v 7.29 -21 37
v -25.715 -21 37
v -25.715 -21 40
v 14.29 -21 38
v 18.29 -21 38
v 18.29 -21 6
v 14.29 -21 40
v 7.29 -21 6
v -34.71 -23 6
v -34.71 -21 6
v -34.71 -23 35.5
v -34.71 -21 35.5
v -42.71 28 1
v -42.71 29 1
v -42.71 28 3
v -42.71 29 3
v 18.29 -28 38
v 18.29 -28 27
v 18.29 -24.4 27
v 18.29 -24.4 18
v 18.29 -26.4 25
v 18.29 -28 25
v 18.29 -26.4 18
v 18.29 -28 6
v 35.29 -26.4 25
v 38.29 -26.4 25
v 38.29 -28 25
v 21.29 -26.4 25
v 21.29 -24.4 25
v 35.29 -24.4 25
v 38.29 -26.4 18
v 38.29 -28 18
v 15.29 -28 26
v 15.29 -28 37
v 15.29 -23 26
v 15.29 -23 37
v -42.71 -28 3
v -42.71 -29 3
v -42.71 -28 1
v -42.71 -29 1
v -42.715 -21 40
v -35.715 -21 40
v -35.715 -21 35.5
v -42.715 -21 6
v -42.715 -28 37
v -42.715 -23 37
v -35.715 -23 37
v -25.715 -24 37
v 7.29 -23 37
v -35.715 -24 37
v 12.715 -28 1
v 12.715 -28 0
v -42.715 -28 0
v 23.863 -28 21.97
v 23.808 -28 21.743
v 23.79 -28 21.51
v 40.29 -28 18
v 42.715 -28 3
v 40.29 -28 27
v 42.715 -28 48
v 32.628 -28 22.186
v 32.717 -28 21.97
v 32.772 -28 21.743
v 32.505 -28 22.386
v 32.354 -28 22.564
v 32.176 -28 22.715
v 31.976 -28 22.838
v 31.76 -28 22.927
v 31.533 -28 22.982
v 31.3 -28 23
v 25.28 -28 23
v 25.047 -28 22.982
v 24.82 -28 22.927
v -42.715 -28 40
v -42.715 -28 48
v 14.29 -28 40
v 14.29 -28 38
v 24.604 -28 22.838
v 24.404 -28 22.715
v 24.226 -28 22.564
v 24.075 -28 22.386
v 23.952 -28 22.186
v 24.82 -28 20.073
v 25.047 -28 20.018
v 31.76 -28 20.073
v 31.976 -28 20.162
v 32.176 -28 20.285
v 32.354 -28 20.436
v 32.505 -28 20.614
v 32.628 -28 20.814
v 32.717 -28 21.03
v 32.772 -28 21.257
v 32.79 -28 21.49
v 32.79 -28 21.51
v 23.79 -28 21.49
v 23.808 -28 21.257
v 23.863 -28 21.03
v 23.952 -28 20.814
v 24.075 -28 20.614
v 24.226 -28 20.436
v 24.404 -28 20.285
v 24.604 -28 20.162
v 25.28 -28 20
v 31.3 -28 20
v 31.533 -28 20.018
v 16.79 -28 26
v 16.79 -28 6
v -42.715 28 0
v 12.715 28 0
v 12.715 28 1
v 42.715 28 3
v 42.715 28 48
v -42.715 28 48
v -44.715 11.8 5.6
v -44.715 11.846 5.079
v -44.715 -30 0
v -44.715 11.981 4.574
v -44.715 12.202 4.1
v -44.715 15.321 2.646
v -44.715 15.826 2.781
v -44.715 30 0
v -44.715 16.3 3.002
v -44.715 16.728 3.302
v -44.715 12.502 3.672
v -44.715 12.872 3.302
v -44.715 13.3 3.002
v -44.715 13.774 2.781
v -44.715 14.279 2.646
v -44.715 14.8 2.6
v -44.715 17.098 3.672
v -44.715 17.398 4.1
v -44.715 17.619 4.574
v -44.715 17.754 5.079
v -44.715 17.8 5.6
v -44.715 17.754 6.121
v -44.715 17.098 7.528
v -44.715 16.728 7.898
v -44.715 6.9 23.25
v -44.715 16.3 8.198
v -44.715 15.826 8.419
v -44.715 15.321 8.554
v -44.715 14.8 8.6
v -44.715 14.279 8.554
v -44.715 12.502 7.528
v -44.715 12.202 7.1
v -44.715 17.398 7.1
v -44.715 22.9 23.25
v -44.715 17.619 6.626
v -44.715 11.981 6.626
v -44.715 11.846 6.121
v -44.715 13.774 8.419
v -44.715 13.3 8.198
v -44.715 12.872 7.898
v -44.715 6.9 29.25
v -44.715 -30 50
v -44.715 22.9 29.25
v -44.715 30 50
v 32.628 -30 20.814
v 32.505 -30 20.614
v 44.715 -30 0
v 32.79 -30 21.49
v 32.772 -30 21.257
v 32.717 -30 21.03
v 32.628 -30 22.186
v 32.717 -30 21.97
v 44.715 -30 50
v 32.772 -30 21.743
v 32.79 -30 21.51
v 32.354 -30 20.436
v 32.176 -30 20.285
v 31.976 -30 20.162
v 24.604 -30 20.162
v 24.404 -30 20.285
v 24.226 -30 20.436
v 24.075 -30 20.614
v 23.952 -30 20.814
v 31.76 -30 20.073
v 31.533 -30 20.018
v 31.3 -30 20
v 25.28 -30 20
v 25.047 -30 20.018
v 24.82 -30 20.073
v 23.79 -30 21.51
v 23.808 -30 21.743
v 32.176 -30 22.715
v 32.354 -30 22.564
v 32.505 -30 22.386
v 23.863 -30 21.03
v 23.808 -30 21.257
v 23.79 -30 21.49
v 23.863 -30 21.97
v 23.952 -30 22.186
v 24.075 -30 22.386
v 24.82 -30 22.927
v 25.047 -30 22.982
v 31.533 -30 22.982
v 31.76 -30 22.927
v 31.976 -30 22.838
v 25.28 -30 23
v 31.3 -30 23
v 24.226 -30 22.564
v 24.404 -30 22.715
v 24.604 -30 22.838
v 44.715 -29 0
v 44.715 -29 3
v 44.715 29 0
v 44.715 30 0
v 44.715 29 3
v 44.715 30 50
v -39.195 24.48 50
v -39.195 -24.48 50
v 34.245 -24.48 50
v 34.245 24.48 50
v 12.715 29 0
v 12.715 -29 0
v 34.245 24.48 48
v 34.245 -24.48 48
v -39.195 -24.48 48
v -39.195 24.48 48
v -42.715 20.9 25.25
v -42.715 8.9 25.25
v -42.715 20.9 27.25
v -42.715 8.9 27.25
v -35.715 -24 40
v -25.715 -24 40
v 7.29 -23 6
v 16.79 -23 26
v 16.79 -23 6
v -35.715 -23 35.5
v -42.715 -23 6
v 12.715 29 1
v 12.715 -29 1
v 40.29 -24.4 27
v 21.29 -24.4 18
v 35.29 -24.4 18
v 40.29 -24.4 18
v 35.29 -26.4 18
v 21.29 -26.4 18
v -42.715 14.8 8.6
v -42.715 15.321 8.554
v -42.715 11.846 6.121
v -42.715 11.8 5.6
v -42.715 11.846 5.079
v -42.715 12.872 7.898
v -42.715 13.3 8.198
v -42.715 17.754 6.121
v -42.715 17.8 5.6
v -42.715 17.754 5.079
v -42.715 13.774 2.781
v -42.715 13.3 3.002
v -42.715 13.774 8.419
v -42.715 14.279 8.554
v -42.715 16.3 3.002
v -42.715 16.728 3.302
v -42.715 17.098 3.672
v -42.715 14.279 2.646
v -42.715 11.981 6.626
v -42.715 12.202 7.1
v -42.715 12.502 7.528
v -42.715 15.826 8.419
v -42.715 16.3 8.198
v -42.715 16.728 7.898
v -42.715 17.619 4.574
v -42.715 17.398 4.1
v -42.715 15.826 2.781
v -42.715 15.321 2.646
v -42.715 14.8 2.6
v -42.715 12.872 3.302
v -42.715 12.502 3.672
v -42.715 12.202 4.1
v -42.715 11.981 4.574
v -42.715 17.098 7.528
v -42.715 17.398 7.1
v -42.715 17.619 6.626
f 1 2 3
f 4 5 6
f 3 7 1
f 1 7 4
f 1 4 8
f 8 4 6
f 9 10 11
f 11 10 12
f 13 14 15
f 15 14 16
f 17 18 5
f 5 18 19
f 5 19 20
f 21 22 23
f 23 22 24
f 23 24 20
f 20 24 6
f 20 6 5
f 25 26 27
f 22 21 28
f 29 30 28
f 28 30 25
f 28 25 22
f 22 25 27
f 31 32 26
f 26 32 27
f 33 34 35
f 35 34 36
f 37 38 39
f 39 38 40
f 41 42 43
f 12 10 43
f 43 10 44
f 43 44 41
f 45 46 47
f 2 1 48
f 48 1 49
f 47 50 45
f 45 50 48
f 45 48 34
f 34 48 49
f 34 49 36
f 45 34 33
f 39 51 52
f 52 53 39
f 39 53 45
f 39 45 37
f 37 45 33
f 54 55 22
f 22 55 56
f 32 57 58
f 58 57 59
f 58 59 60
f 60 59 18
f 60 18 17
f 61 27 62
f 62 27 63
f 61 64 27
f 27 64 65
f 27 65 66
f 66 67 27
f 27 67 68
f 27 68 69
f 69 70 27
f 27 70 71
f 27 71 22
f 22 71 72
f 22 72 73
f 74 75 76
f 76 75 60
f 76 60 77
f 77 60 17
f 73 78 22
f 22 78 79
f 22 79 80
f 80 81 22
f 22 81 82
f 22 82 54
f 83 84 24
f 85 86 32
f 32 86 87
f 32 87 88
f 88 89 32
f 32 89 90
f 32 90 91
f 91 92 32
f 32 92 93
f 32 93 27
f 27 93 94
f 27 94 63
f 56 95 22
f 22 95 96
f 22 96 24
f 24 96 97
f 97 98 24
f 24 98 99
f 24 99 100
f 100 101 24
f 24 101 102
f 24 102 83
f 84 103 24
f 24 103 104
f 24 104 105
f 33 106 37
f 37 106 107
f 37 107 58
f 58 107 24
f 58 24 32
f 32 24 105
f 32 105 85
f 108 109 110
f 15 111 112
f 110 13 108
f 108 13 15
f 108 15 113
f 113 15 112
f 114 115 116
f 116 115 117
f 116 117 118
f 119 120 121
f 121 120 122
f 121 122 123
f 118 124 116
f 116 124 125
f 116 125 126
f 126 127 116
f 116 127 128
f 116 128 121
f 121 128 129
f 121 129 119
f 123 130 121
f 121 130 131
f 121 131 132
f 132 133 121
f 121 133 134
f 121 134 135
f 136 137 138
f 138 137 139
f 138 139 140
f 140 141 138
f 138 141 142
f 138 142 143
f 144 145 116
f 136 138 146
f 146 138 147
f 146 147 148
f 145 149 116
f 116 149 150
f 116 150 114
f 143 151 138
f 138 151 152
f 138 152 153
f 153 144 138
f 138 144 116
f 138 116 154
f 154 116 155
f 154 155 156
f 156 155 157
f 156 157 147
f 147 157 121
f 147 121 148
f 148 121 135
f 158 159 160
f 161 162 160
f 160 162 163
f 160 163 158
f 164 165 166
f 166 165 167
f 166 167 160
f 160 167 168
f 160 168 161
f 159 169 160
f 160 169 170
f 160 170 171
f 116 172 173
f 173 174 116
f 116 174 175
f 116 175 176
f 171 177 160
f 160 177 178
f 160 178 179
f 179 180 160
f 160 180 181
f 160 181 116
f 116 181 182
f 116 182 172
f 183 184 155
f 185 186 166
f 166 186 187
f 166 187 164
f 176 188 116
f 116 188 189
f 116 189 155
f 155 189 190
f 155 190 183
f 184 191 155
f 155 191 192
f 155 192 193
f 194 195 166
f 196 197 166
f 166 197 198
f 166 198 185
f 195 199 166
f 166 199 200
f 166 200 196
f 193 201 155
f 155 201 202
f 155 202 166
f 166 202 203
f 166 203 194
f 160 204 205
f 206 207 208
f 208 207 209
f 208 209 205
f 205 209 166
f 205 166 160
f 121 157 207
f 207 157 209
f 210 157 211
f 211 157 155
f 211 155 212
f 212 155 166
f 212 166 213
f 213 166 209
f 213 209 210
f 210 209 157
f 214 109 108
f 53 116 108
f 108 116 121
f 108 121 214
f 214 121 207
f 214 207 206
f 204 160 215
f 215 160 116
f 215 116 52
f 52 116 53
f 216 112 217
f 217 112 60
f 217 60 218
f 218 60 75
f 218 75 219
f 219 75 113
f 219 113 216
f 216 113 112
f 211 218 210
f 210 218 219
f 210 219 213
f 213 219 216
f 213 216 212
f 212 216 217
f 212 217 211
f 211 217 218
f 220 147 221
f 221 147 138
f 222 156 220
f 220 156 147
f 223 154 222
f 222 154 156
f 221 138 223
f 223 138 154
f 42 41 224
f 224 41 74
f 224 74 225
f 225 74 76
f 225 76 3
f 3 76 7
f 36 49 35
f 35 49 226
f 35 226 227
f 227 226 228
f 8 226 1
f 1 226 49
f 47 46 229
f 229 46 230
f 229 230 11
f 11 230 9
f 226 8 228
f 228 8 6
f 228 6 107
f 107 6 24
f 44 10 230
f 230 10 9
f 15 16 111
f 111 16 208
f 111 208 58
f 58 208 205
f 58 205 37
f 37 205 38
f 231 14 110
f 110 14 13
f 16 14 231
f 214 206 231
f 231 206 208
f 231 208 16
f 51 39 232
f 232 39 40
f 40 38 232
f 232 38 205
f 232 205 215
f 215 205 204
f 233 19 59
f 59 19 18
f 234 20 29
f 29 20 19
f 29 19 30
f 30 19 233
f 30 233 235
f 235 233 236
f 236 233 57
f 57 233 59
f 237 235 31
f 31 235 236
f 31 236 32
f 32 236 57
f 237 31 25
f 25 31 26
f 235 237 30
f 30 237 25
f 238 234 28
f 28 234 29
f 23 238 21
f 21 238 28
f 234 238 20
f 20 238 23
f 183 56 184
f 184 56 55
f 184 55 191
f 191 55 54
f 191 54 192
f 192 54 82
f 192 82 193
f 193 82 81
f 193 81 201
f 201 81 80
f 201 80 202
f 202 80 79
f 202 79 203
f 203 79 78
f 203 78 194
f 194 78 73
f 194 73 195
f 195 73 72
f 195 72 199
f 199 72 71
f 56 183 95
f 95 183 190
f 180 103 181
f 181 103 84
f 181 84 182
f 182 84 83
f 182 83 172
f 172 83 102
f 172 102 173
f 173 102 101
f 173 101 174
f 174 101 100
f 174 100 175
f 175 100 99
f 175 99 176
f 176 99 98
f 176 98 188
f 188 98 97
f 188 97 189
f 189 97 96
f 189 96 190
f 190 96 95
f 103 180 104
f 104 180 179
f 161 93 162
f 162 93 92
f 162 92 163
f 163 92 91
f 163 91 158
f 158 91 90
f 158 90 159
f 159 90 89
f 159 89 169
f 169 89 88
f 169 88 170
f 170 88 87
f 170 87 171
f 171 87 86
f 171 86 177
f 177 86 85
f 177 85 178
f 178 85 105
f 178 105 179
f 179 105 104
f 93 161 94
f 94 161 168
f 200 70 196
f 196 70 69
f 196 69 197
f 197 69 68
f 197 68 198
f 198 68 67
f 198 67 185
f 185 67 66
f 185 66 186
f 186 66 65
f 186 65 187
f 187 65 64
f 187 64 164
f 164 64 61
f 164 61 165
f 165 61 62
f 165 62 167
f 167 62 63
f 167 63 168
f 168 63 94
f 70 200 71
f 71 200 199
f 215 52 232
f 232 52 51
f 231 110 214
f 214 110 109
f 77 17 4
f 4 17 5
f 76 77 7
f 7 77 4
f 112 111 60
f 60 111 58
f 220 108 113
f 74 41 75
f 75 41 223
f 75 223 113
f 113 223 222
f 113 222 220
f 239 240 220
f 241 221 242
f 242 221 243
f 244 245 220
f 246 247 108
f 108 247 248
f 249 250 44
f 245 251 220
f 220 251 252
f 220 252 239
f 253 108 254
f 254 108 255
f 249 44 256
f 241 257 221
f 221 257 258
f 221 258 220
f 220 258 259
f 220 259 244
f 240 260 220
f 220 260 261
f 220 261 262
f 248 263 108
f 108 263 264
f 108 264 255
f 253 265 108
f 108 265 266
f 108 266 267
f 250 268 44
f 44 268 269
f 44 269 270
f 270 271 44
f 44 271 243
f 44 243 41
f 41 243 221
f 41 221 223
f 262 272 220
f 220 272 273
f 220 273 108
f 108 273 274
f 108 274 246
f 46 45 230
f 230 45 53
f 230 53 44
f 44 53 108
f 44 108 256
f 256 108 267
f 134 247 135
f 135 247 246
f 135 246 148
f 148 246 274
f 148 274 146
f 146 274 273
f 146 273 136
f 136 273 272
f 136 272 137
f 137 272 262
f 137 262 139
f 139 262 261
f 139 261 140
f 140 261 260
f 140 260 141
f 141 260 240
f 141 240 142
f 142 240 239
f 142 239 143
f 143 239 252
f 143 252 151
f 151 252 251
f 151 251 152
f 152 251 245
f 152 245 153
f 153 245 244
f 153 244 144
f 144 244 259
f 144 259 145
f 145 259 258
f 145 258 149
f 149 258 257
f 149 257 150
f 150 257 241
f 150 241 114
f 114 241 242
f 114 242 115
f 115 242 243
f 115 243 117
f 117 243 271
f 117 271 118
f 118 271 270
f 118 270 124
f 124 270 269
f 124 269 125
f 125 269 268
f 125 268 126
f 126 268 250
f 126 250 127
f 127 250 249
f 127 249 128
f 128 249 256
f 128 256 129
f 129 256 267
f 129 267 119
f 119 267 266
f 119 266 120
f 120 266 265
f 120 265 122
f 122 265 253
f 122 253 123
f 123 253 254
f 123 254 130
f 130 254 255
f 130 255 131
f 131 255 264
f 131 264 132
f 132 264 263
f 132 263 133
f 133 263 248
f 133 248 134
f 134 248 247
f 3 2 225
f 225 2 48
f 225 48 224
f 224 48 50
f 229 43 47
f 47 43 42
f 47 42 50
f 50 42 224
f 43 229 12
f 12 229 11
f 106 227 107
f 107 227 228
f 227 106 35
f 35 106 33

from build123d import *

# Parameters (mm, degrees)
SKETCH_1_W           = 89.43
SKETCH_1_H           = 60
EXTRUDE_2_DEPTH      = 50
EXTRUDE_START        = -50
EXTRUDE_3_OUTLINE_W  = 85.42
EXTRUDE_3_OUTLINE_H  = 56
EXTRUDE_3_DEPTH      = 50
SKETCH_3_W           = 89.43
SKETCH_3_H           = 60
EXTRUDE_4_DEPTH      = 2
EXTRUDE_START_2      = -2
EXTRUDE_5_OUTLINE_W  = 73.44
EXTRUDE_5_OUTLINE_H  = 48.96
EXTRUDE_5_DEPTH      = 2
SKETCH_6_W           = 2
SKETCH_6_H           = 12
CUT_EXTRUDE_6_DEPTH  = 10
SKETCH_8_W           = 6
SKETCH_8_H           = 16
CUT_EXTRUDE_7_DEPTH  = 10
DRAFT_2_ANGLE        = 45
SKETCH_9_W           = 61
SKETCH_9_H           = 3
EXTRUDE_5_2_DEPTH    = 7
SKETCH_10_W          = 3
SKETCH_10_H          = 40
EXTRUDE_6_DEPTH      = 7
SKETCH_11_W          = 8
SKETCH_11_H          = 2
EXTRUDE_7_DEPTH      = 20
SKETCH_12_W          = 3
SKETCH_12_H          = 7
CUT_EXTRUDE_8_DEPTH  = 6
SKETCH_13_W          = 8
SKETCH_13_H          = 2
EXTRUDE_8_DEPTH      = 11
SKETCH_14_W          = 3
SKETCH_14_H          = 56
CUT_EXTRUDE_10_DEPTH = 11
SKETCH_15_W          = 87.425
SKETCH_15_H          = 2
CUT_EXTRUDE_11_DEPTH = 1
SKETCH_16_W          = 87.425
SKETCH_16_H          = 2
CUT_EXTRUDE_12_DEPTH = 1
SKETCH_17_R          = 3
CUT_EXTRUDE_13_DEPTH = 5.4
EXTRUDE_9_DEPTH      = 3.6
SKETCH_20_W          = 3
SKETCH_20_H          = 2
EXTRUDE_10_DEPTH     = 7
CUT_EXTRUDE_15_DEPTH = 7
SKETCH_22_W          = 32
SKETCH_22_H          = 58
CUT_EXTRUDE_16_DEPTH = 1
SKETCH_25_W          = 3
SKETCH_25_H          = 2
CUT_EXTRUDE_18_DEPTH = 2
SKETCH_27_W          = 4
SKETCH_27_H          = 2
CUT_EXTRUDE_19_DEPTH = 2
SKETCH_29_W          = 2.005
SKETCH_29_H          = 11.917011913
EXTRUDE_12_DEPTH     = 17
SKETCH_31_W          = 1.611039623
SKETCH_31_H          = 56
SKETCH_31_W_2        = 2
CUT_EXTRUDE_20_DEPTH = 48
SKETCH_34_W          = 8.005
SKETCH_34_H          = 34
EXTRUDE_13_DEPTH     = 2
SKETCH_35_W          = 8.005
SKETCH_35_H          = 3
EXTRUDE_14_DEPTH     = 8
SKETCH_36_R          = 3
CUT_EXTRUDE_21_DEPTH = 8
SKETCH_37_W          = 4
SKETCH_37_H          = 2
CUT_EXTRUDE_22_DEPTH = 5
SKETCH_38_W          = 10
SKETCH_38_H          = 3
CUT_EXTRUDE_23_DEPTH = 4.5
SKETCH_39_W          = 1.5
SKETCH_39_H          = 5
CUT_EXTRUDE_24_DEPTH = 20


# Read off the part's stored shape, not the designer's step: 切除-拉伸3, 切除-拉伸5
with BuildPart() as part:
    # 草图1 → 凸台-拉伸2 (new body)
    with BuildSketch(Plane.XY):
        Rectangle(SKETCH_1_W, SKETCH_1_H)
    extrude(amount=EXTRUDE_2_DEPTH)

    # 切除-拉伸3 outline → 切除-拉伸3 (cut)
    with BuildSketch(Plane.XY.offset(50).offset(EXTRUDE_START)):
        Rectangle(EXTRUDE_3_OUTLINE_W, EXTRUDE_3_OUTLINE_H)
    extrude(amount=EXTRUDE_3_DEPTH, mode=Mode.SUBTRACT)

    # 草图3 → 凸台-拉伸4 (add)
    with BuildSketch(Plane.XY.offset(50)):
        Rectangle(SKETCH_3_W, SKETCH_3_H)
    extrude(amount=-EXTRUDE_4_DEPTH)

    # Extrude 5 outline → Extrude 5 (cut)
    with BuildSketch(Plane.XY.offset(50).offset(EXTRUDE_START_2)):
        with Locations((-2.475, 0)):
            Rectangle(EXTRUDE_5_OUTLINE_W, EXTRUDE_5_OUTLINE_H)
    extrude(amount=EXTRUDE_5_DEPTH, mode=Mode.SUBTRACT)

    # 草图6 → 切除-拉伸6 (cut)
    with BuildSketch(Plane.ZY.offset(44.715)):
        with Locations((26.25, 14.9)):
            Rectangle(SKETCH_6_W, SKETCH_6_H)
    extrude(amount=-CUT_EXTRUDE_6_DEPTH, mode=Mode.SUBTRACT)

    # 草图8 → 切除-拉伸7 (cut)
    with BuildSketch(Plane.ZY.offset(44.715)):
        with Locations((26.25, 14.9)):
            Rectangle(SKETCH_8_W, SKETCH_8_H)
    extrude(amount=-CUT_EXTRUDE_7_DEPTH, mode=Mode.SUBTRACT)

    # 拔模2
    draft_2_faces = [part.faces().sort_by_distance(p)[0] for p in [
        (-43.7125, 22.9, 26.25),
        (-43.7125, 14.9, 23.25),
        (-43.7125, 6.9, 26.25),
        (-43.7125, 14.9, 29.25),
    ]]
    draft(draft_2_faces, Plane(origin=(-44.715, 30, 50), x_dir=(0, -1, 0), z_dir=(-1, 0, 0)), DRAFT_2_ANGLE)

    # 草图9 → Extrude 5 2 (add)
    with BuildSketch(Plane(origin=(0, -28, 0), x_dir=(1, 0, 0), z_dir=(0, 1, 0))):
        with Locations((-12.21, -38.5)):
            Rectangle(SKETCH_9_W, SKETCH_9_H)
    extrude(amount=EXTRUDE_5_2_DEPTH)

    # 草图10 → 凸台-拉伸6 (add)
    with BuildSketch(Plane(origin=(0, -28, 0), x_dir=(1, 0, 0), z_dir=(0, 1, 0))):
        with Locations((16.79, -20)):
            Rectangle(SKETCH_10_W, SKETCH_10_H)
    extrude(amount=EXTRUDE_6_DEPTH)

    # 草图11 → 凸台-拉伸7 (add)
    with BuildSketch(Plane(origin=(0, 0, 37), x_dir=(-1, 0, 0), z_dir=(0, 0, -1))):
        with Locations((-11.29, -22)):
            Rectangle(SKETCH_11_W, SKETCH_11_H)
        with Locations((38.71, -22)):
            Rectangle(SKETCH_11_W, SKETCH_11_H)
    extrude(amount=EXTRUDE_7_DEPTH)

    # 草图12 → 切除-拉伸8 (cut)
    with BuildSketch(Plane(origin=(0, 0, 0), x_dir=(-1, 0, 0), z_dir=(0, 0, -1))):
        with Locations((-16.79, -24.5)):
            Rectangle(SKETCH_12_W, SKETCH_12_H)
    extrude(amount=-CUT_EXTRUDE_8_DEPTH, mode=Mode.SUBTRACT)

    # 草图13 → 凸台-拉伸8 (add)
    with BuildSketch(Plane(origin=(0, 0, 17), x_dir=(-1, 0, 0), z_dir=(0, 0, -1))):
        with Locations((-11.29, -22)):
            Rectangle(SKETCH_13_W, SKETCH_13_H)
        with Locations((38.71, -22)):
            Rectangle(SKETCH_13_W, SKETCH_13_H)
    extrude(amount=EXTRUDE_8_DEPTH)

    # 草图14 → 切除-拉伸10 (cut)
    with BuildSketch(Plane(origin=(44.715, 0, 0), x_dir=(0, 0, -1), z_dir=(1, 0, 0))):
        with Locations((-1.5, 0)):
            Rectangle(SKETCH_14_W, SKETCH_14_H)
    extrude(amount=-CUT_EXTRUDE_10_DEPTH, mode=Mode.SUBTRACT)

    # 草图15 → 切除-拉伸11 (cut)
    with BuildSketch(Plane.XZ.offset(-28)):
        with Locations((1.0025, 2)):
            Rectangle(SKETCH_15_W, SKETCH_15_H)
    extrude(amount=-CUT_EXTRUDE_11_DEPTH, mode=Mode.SUBTRACT)

    # 草图16 → 切除-拉伸12 (cut)
    with BuildSketch(Plane(origin=(0, -28, 0), x_dir=(1, 0, 0), z_dir=(0, 1, 0))):
        with Locations((1.0025, -2)):
            Rectangle(SKETCH_16_W, SKETCH_16_H)
    extrude(amount=-CUT_EXTRUDE_12_DEPTH, mode=Mode.SUBTRACT)

    # 草图17 → 切除-拉伸13 (cut)
    with BuildSketch(Plane.ZY.offset(44.715)):
        with Locations(Location((11.4, 18, 0), (0, 0, 270))):
            Circle(SKETCH_17_R)
    extrude(amount=-CUT_EXTRUDE_13_DEPTH, mode=Mode.SUBTRACT)

    # 草图18 → 凸台-拉伸9 (add)
    with BuildSketch(Plane(origin=(0, -28, 0), x_dir=(1, 0, 0), z_dir=(0, 1, 0))):
        Polygon((18.29, -25), (18.29, -27), (40.29, -27), (40.29, -18), (38.29, -18), (38.29, -25), align=None)
    extrude(amount=EXTRUDE_9_DEPTH)

    # 草图20 → 凸台-拉伸10 (add)
    with BuildSketch(Plane(origin=(0, 0, 25), x_dir=(-1, 0, 0), z_dir=(0, 0, -1))):
        with Locations((-36.79, -25.4)):
            Rectangle(SKETCH_20_W, SKETCH_20_H)
        with Locations((-19.79, -25.4)):
            Rectangle(SKETCH_20_W, SKETCH_20_H)
    extrude(amount=EXTRUDE_10_DEPTH)

    # 草图21 → 切除-拉伸15 (cut)
    with BuildSketch(Plane(origin=(0, -28, 0), x_dir=(1, 0, 0), z_dir=(0, 1, 0))):
        with BuildLine():
            Line((25.28, -20), (31.3, -20))
            ThreePointArc((31.3, -20), (32.353589104, -20.436410896), (32.79, -21.49))
            Line((32.79, -21.49), (32.79, -21.51))
            ThreePointArc((32.79, -21.51), (32.353589104, -22.563589104), (31.3, -23))
            Line((31.3, -23), (25.28, -23))
            ThreePointArc((25.28, -23), (24.226410896, -22.563589104), (23.79, -21.51))
            Line((23.79, -21.51), (23.79, -21.49))
            ThreePointArc((23.79, -21.49), (24.226410896, -20.436410896), (25.28, -20))
        make_face()
    extrude(amount=-CUT_EXTRUDE_15_DEPTH, mode=Mode.SUBTRACT)

    # 草图22 → 切除-拉伸16 (cut)
    with BuildSketch(Plane(origin=(0, 0, 0), x_dir=(-1, 0, 0), z_dir=(0, 0, -1))):
        with Locations((-28.715, 0)):
            Rectangle(SKETCH_22_W, SKETCH_22_H)
    extrude(amount=-CUT_EXTRUDE_16_DEPTH, mode=Mode.SUBTRACT)

    # 草图25 → 切除-拉伸18 (cut)
    with BuildSketch(Plane(origin=(0, -21, 0), x_dir=(1, 0, 0), z_dir=(0, 1, 0))):
        with Locations((16.79, -39)):
            Rectangle(SKETCH_25_W, SKETCH_25_H)
    extrude(amount=-CUT_EXTRUDE_18_DEPTH, mode=Mode.SUBTRACT)

    # 草图27 → 切除-拉伸19 (cut)
    with BuildSketch(Plane(origin=(0, -21, 0), x_dir=(1, 0, 0), z_dir=(0, 1, 0))):
        with Locations((16.29, -39)):
            Rectangle(SKETCH_27_W, SKETCH_27_H)
    extrude(amount=-CUT_EXTRUDE_19_DEPTH, mode=Mode.SUBTRACT)

    # 草图29 → 凸台-拉伸12 (add)
    with BuildSketch(Plane(origin=(0, 0, 0), x_dir=(-1, 0, 0), z_dir=(0, 0, -1))):
        with Locations((43.7125, 17.342942197)):
            Rectangle(SKETCH_29_W, SKETCH_29_H)
    extrude(amount=-EXTRUDE_12_DEPTH)

    # 草图31 → 切除-拉伸20 (cut)
    with BuildSketch(Plane(origin=(0, 0, 0), x_dir=(-1, 0, 0), z_dir=(0, 0, -1))):
        with Locations((-41.909480188, 0)):
            Rectangle(SKETCH_31_W, SKETCH_31_H)
        with Locations((41.715, 0)):
            Rectangle(SKETCH_31_W_2, SKETCH_31_H)
    extrude(amount=-CUT_EXTRUDE_20_DEPTH, mode=Mode.SUBTRACT)

    # 草图34 → 凸台-拉伸13 (add)
    with BuildSketch(Plane(origin=(0, -21, 0), x_dir=(1, 0, 0), z_dir=(0, 1, 0))):
        with Locations((-38.7125, -23)):
            Rectangle(SKETCH_34_W, SKETCH_34_H)
    extrude(amount=-EXTRUDE_13_DEPTH)

    # 草图35 → 凸台-拉伸14 (add)
    with BuildSketch(Plane(origin=(0, -21, 0), x_dir=(1, 0, 0), z_dir=(0, 1, 0))):
        with Locations((-38.7125, -38.5)):
            Rectangle(SKETCH_35_W, SKETCH_35_H)
    extrude(amount=-EXTRUDE_14_DEPTH)

    # 草图36 → 切除-拉伸21 (cut)
    with BuildSketch(Plane(origin=(-42.715, 0, 0), x_dir=(0, 0, -1), z_dir=(1, 0, 0))):
        with Locations(Location((-5.6, 14.8, 0), (0, 0, 90))):
            Circle(SKETCH_36_R)
    extrude(amount=-CUT_EXTRUDE_21_DEPTH, mode=Mode.SUBTRACT)

    # 草图37 → 切除-拉伸22 (cut)
    with BuildSketch(Plane(origin=(0, -23, 0), x_dir=(1, 0, 0), z_dir=(0, 1, 0))):
        with Locations((16.29, -39)):
            Rectangle(SKETCH_37_W, SKETCH_37_H)
    extrude(amount=-CUT_EXTRUDE_22_DEPTH, mode=Mode.SUBTRACT)

    # 草图38 → 切除-拉伸23 (cut)
    with BuildSketch(Plane.XY.offset(40)):
        with Locations((-30.715, -22.5)):
            Rectangle(SKETCH_38_W, SKETCH_38_H)
    extrude(amount=-CUT_EXTRUDE_23_DEPTH, mode=Mode.SUBTRACT)

    # 草图39 → 切除-拉伸24 (cut)
    with BuildSketch(Plane(origin=(0, 0, 6), x_dir=(-1, 0, 0), z_dir=(0, 0, -1))):
        with Locations((-16.04, -25.5)):
            Rectangle(SKETCH_39_W, SKETCH_39_H)
    extrude(amount=-CUT_EXTRUDE_24_DEPTH, mode=Mode.SUBTRACT)


solid = part.part
